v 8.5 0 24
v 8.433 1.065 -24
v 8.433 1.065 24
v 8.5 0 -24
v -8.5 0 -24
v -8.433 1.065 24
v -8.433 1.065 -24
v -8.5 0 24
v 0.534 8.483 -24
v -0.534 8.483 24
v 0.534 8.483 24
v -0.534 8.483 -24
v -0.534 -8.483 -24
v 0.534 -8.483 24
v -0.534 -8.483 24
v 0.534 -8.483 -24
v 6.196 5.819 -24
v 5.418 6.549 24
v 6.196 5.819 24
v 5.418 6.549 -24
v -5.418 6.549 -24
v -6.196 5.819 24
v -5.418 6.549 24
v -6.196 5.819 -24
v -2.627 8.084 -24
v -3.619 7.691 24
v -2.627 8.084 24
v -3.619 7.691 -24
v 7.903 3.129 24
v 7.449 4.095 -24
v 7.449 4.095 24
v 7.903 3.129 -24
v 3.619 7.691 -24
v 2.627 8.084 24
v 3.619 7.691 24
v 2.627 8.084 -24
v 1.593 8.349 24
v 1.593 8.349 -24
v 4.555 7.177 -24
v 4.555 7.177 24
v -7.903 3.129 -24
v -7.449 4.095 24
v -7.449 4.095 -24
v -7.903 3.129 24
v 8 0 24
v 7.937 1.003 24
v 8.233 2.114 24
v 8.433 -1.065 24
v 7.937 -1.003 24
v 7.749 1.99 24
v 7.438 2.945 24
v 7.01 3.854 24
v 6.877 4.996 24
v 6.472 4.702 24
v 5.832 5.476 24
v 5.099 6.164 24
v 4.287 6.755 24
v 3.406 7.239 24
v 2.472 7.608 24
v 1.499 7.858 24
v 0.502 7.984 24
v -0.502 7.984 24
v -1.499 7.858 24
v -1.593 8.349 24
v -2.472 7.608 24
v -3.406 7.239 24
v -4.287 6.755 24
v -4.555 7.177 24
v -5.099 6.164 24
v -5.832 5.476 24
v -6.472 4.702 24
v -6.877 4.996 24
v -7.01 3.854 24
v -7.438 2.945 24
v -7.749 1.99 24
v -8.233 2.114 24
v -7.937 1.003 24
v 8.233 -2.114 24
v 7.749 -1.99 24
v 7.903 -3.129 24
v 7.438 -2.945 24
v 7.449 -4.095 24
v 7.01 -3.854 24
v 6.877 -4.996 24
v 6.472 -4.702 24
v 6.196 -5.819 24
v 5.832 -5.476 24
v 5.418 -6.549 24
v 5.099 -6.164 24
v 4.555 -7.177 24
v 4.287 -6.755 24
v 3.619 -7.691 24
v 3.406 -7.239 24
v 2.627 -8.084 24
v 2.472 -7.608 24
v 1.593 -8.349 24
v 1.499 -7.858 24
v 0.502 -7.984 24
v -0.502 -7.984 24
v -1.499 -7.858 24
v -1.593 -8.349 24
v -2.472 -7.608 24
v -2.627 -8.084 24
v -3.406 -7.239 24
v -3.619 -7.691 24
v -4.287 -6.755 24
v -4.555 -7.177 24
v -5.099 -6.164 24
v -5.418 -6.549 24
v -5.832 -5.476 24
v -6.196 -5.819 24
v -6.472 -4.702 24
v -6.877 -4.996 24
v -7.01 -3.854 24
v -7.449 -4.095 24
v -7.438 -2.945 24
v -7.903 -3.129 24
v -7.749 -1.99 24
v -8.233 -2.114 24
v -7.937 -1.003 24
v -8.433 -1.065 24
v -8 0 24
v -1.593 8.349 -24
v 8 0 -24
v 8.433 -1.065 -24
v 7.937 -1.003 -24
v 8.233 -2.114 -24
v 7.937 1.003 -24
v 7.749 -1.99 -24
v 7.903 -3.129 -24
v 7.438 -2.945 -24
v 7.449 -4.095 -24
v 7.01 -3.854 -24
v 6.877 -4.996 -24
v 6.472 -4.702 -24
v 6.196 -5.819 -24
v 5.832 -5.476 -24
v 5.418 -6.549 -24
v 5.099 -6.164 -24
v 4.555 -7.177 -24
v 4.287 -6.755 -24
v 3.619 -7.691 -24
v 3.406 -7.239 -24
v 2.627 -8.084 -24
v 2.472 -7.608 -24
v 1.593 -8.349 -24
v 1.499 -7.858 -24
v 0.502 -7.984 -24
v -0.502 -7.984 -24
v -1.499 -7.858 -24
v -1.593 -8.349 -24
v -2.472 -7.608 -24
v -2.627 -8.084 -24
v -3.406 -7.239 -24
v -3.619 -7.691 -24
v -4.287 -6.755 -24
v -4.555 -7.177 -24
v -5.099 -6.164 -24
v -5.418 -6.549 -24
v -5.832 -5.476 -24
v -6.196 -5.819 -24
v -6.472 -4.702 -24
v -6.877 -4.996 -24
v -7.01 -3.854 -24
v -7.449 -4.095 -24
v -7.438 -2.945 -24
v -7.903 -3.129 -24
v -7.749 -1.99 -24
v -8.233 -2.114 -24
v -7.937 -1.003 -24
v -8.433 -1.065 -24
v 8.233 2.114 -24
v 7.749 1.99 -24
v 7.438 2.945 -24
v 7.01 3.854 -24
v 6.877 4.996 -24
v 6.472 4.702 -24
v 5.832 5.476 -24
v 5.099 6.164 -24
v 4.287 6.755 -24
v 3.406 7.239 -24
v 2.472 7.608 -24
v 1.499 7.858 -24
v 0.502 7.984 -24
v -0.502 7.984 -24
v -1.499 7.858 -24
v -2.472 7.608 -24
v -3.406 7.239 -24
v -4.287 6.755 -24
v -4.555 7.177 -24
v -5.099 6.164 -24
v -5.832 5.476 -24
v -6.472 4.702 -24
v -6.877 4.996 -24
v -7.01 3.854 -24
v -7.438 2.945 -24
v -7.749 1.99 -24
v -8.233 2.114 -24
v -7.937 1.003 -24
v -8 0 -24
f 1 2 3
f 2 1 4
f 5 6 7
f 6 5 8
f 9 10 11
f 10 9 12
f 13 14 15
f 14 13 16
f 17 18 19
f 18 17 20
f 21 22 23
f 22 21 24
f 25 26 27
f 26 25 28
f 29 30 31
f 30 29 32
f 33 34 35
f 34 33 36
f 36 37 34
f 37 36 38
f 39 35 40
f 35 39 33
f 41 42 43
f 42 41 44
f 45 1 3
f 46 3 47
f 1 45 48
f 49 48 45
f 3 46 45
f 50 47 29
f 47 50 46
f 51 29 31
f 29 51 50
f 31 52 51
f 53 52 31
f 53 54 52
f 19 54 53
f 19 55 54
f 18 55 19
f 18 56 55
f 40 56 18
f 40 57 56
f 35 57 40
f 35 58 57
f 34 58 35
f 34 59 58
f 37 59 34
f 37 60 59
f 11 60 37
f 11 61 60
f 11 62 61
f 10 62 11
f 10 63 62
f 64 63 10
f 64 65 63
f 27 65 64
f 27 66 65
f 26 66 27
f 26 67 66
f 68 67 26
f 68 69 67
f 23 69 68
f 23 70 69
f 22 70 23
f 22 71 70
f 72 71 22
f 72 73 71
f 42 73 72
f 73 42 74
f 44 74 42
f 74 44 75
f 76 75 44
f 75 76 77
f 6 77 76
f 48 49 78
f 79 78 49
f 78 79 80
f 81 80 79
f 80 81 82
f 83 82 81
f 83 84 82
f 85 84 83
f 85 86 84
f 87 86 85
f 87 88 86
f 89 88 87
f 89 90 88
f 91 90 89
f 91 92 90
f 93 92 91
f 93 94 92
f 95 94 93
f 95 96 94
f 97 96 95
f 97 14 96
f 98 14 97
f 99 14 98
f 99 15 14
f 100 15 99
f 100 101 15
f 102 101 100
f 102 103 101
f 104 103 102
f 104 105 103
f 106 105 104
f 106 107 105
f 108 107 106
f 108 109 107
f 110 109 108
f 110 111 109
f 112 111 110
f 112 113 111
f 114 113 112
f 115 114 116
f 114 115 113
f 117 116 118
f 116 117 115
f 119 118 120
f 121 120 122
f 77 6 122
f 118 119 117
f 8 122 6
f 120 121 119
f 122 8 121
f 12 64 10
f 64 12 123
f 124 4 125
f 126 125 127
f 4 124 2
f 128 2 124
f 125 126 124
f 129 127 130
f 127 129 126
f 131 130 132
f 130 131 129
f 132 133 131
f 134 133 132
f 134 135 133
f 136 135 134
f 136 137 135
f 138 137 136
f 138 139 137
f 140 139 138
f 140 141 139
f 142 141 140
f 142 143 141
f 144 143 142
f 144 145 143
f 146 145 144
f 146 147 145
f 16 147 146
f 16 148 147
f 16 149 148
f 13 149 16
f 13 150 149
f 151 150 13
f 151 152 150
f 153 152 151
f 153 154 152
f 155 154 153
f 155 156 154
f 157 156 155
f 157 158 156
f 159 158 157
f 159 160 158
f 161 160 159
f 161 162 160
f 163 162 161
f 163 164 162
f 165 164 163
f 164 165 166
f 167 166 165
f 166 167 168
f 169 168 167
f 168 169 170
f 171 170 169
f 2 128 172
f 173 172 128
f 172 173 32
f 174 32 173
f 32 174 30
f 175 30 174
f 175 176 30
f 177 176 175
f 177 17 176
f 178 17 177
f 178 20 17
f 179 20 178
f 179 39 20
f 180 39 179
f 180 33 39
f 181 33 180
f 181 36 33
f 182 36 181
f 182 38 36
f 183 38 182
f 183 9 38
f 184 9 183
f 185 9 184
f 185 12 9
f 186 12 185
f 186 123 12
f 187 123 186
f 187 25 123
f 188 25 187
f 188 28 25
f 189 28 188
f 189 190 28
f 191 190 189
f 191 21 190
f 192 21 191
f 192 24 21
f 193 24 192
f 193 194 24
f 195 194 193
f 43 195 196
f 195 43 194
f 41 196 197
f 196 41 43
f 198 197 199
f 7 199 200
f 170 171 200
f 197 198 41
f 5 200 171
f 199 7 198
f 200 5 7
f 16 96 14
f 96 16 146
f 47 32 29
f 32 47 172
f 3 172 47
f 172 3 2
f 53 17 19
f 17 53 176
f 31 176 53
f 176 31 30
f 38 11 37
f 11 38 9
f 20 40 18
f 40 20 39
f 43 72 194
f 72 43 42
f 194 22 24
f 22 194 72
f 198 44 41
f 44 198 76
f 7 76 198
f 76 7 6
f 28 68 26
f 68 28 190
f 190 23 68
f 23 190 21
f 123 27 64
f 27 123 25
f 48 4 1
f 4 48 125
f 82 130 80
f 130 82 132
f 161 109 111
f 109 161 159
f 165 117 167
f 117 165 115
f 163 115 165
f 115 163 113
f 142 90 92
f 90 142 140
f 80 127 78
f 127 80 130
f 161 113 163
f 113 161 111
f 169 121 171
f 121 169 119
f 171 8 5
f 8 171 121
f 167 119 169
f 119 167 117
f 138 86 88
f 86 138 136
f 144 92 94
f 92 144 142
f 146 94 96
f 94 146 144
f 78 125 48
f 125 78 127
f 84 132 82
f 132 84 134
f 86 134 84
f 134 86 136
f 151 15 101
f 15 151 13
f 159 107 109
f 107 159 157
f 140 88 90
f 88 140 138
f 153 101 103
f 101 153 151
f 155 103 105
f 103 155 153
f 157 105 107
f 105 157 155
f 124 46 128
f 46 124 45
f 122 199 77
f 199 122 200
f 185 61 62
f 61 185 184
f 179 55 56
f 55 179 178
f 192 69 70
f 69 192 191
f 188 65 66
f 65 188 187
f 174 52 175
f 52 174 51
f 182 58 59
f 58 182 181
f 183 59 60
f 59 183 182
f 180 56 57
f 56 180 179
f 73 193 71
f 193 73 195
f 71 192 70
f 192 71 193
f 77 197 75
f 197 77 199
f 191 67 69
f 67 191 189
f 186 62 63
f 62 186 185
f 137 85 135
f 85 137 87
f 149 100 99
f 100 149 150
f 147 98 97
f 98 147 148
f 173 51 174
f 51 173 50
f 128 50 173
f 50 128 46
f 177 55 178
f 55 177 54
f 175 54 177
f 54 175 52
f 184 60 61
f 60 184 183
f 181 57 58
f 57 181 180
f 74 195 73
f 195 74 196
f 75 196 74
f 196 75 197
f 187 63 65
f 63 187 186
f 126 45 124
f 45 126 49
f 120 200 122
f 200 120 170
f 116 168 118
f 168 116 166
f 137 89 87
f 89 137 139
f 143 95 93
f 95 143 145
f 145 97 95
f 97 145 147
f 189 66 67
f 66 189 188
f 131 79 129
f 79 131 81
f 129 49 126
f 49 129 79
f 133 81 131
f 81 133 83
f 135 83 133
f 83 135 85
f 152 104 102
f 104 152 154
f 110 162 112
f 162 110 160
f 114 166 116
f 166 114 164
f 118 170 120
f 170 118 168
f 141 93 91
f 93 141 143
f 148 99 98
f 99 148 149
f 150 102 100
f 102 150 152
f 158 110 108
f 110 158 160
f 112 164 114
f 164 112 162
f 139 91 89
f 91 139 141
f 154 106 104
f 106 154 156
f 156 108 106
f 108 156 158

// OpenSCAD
$fn = 50;


difference() {
	union() {
		translate(v = [0, 0, -24.0000000000]) {
			cylinder(h = 48, r = 8.5000000000);
		}
	}
	union() {
		translate(v = [0, 0, -100.0000000000]) {
			cylinder(h = 200, r = 8);
		}
	}
}
